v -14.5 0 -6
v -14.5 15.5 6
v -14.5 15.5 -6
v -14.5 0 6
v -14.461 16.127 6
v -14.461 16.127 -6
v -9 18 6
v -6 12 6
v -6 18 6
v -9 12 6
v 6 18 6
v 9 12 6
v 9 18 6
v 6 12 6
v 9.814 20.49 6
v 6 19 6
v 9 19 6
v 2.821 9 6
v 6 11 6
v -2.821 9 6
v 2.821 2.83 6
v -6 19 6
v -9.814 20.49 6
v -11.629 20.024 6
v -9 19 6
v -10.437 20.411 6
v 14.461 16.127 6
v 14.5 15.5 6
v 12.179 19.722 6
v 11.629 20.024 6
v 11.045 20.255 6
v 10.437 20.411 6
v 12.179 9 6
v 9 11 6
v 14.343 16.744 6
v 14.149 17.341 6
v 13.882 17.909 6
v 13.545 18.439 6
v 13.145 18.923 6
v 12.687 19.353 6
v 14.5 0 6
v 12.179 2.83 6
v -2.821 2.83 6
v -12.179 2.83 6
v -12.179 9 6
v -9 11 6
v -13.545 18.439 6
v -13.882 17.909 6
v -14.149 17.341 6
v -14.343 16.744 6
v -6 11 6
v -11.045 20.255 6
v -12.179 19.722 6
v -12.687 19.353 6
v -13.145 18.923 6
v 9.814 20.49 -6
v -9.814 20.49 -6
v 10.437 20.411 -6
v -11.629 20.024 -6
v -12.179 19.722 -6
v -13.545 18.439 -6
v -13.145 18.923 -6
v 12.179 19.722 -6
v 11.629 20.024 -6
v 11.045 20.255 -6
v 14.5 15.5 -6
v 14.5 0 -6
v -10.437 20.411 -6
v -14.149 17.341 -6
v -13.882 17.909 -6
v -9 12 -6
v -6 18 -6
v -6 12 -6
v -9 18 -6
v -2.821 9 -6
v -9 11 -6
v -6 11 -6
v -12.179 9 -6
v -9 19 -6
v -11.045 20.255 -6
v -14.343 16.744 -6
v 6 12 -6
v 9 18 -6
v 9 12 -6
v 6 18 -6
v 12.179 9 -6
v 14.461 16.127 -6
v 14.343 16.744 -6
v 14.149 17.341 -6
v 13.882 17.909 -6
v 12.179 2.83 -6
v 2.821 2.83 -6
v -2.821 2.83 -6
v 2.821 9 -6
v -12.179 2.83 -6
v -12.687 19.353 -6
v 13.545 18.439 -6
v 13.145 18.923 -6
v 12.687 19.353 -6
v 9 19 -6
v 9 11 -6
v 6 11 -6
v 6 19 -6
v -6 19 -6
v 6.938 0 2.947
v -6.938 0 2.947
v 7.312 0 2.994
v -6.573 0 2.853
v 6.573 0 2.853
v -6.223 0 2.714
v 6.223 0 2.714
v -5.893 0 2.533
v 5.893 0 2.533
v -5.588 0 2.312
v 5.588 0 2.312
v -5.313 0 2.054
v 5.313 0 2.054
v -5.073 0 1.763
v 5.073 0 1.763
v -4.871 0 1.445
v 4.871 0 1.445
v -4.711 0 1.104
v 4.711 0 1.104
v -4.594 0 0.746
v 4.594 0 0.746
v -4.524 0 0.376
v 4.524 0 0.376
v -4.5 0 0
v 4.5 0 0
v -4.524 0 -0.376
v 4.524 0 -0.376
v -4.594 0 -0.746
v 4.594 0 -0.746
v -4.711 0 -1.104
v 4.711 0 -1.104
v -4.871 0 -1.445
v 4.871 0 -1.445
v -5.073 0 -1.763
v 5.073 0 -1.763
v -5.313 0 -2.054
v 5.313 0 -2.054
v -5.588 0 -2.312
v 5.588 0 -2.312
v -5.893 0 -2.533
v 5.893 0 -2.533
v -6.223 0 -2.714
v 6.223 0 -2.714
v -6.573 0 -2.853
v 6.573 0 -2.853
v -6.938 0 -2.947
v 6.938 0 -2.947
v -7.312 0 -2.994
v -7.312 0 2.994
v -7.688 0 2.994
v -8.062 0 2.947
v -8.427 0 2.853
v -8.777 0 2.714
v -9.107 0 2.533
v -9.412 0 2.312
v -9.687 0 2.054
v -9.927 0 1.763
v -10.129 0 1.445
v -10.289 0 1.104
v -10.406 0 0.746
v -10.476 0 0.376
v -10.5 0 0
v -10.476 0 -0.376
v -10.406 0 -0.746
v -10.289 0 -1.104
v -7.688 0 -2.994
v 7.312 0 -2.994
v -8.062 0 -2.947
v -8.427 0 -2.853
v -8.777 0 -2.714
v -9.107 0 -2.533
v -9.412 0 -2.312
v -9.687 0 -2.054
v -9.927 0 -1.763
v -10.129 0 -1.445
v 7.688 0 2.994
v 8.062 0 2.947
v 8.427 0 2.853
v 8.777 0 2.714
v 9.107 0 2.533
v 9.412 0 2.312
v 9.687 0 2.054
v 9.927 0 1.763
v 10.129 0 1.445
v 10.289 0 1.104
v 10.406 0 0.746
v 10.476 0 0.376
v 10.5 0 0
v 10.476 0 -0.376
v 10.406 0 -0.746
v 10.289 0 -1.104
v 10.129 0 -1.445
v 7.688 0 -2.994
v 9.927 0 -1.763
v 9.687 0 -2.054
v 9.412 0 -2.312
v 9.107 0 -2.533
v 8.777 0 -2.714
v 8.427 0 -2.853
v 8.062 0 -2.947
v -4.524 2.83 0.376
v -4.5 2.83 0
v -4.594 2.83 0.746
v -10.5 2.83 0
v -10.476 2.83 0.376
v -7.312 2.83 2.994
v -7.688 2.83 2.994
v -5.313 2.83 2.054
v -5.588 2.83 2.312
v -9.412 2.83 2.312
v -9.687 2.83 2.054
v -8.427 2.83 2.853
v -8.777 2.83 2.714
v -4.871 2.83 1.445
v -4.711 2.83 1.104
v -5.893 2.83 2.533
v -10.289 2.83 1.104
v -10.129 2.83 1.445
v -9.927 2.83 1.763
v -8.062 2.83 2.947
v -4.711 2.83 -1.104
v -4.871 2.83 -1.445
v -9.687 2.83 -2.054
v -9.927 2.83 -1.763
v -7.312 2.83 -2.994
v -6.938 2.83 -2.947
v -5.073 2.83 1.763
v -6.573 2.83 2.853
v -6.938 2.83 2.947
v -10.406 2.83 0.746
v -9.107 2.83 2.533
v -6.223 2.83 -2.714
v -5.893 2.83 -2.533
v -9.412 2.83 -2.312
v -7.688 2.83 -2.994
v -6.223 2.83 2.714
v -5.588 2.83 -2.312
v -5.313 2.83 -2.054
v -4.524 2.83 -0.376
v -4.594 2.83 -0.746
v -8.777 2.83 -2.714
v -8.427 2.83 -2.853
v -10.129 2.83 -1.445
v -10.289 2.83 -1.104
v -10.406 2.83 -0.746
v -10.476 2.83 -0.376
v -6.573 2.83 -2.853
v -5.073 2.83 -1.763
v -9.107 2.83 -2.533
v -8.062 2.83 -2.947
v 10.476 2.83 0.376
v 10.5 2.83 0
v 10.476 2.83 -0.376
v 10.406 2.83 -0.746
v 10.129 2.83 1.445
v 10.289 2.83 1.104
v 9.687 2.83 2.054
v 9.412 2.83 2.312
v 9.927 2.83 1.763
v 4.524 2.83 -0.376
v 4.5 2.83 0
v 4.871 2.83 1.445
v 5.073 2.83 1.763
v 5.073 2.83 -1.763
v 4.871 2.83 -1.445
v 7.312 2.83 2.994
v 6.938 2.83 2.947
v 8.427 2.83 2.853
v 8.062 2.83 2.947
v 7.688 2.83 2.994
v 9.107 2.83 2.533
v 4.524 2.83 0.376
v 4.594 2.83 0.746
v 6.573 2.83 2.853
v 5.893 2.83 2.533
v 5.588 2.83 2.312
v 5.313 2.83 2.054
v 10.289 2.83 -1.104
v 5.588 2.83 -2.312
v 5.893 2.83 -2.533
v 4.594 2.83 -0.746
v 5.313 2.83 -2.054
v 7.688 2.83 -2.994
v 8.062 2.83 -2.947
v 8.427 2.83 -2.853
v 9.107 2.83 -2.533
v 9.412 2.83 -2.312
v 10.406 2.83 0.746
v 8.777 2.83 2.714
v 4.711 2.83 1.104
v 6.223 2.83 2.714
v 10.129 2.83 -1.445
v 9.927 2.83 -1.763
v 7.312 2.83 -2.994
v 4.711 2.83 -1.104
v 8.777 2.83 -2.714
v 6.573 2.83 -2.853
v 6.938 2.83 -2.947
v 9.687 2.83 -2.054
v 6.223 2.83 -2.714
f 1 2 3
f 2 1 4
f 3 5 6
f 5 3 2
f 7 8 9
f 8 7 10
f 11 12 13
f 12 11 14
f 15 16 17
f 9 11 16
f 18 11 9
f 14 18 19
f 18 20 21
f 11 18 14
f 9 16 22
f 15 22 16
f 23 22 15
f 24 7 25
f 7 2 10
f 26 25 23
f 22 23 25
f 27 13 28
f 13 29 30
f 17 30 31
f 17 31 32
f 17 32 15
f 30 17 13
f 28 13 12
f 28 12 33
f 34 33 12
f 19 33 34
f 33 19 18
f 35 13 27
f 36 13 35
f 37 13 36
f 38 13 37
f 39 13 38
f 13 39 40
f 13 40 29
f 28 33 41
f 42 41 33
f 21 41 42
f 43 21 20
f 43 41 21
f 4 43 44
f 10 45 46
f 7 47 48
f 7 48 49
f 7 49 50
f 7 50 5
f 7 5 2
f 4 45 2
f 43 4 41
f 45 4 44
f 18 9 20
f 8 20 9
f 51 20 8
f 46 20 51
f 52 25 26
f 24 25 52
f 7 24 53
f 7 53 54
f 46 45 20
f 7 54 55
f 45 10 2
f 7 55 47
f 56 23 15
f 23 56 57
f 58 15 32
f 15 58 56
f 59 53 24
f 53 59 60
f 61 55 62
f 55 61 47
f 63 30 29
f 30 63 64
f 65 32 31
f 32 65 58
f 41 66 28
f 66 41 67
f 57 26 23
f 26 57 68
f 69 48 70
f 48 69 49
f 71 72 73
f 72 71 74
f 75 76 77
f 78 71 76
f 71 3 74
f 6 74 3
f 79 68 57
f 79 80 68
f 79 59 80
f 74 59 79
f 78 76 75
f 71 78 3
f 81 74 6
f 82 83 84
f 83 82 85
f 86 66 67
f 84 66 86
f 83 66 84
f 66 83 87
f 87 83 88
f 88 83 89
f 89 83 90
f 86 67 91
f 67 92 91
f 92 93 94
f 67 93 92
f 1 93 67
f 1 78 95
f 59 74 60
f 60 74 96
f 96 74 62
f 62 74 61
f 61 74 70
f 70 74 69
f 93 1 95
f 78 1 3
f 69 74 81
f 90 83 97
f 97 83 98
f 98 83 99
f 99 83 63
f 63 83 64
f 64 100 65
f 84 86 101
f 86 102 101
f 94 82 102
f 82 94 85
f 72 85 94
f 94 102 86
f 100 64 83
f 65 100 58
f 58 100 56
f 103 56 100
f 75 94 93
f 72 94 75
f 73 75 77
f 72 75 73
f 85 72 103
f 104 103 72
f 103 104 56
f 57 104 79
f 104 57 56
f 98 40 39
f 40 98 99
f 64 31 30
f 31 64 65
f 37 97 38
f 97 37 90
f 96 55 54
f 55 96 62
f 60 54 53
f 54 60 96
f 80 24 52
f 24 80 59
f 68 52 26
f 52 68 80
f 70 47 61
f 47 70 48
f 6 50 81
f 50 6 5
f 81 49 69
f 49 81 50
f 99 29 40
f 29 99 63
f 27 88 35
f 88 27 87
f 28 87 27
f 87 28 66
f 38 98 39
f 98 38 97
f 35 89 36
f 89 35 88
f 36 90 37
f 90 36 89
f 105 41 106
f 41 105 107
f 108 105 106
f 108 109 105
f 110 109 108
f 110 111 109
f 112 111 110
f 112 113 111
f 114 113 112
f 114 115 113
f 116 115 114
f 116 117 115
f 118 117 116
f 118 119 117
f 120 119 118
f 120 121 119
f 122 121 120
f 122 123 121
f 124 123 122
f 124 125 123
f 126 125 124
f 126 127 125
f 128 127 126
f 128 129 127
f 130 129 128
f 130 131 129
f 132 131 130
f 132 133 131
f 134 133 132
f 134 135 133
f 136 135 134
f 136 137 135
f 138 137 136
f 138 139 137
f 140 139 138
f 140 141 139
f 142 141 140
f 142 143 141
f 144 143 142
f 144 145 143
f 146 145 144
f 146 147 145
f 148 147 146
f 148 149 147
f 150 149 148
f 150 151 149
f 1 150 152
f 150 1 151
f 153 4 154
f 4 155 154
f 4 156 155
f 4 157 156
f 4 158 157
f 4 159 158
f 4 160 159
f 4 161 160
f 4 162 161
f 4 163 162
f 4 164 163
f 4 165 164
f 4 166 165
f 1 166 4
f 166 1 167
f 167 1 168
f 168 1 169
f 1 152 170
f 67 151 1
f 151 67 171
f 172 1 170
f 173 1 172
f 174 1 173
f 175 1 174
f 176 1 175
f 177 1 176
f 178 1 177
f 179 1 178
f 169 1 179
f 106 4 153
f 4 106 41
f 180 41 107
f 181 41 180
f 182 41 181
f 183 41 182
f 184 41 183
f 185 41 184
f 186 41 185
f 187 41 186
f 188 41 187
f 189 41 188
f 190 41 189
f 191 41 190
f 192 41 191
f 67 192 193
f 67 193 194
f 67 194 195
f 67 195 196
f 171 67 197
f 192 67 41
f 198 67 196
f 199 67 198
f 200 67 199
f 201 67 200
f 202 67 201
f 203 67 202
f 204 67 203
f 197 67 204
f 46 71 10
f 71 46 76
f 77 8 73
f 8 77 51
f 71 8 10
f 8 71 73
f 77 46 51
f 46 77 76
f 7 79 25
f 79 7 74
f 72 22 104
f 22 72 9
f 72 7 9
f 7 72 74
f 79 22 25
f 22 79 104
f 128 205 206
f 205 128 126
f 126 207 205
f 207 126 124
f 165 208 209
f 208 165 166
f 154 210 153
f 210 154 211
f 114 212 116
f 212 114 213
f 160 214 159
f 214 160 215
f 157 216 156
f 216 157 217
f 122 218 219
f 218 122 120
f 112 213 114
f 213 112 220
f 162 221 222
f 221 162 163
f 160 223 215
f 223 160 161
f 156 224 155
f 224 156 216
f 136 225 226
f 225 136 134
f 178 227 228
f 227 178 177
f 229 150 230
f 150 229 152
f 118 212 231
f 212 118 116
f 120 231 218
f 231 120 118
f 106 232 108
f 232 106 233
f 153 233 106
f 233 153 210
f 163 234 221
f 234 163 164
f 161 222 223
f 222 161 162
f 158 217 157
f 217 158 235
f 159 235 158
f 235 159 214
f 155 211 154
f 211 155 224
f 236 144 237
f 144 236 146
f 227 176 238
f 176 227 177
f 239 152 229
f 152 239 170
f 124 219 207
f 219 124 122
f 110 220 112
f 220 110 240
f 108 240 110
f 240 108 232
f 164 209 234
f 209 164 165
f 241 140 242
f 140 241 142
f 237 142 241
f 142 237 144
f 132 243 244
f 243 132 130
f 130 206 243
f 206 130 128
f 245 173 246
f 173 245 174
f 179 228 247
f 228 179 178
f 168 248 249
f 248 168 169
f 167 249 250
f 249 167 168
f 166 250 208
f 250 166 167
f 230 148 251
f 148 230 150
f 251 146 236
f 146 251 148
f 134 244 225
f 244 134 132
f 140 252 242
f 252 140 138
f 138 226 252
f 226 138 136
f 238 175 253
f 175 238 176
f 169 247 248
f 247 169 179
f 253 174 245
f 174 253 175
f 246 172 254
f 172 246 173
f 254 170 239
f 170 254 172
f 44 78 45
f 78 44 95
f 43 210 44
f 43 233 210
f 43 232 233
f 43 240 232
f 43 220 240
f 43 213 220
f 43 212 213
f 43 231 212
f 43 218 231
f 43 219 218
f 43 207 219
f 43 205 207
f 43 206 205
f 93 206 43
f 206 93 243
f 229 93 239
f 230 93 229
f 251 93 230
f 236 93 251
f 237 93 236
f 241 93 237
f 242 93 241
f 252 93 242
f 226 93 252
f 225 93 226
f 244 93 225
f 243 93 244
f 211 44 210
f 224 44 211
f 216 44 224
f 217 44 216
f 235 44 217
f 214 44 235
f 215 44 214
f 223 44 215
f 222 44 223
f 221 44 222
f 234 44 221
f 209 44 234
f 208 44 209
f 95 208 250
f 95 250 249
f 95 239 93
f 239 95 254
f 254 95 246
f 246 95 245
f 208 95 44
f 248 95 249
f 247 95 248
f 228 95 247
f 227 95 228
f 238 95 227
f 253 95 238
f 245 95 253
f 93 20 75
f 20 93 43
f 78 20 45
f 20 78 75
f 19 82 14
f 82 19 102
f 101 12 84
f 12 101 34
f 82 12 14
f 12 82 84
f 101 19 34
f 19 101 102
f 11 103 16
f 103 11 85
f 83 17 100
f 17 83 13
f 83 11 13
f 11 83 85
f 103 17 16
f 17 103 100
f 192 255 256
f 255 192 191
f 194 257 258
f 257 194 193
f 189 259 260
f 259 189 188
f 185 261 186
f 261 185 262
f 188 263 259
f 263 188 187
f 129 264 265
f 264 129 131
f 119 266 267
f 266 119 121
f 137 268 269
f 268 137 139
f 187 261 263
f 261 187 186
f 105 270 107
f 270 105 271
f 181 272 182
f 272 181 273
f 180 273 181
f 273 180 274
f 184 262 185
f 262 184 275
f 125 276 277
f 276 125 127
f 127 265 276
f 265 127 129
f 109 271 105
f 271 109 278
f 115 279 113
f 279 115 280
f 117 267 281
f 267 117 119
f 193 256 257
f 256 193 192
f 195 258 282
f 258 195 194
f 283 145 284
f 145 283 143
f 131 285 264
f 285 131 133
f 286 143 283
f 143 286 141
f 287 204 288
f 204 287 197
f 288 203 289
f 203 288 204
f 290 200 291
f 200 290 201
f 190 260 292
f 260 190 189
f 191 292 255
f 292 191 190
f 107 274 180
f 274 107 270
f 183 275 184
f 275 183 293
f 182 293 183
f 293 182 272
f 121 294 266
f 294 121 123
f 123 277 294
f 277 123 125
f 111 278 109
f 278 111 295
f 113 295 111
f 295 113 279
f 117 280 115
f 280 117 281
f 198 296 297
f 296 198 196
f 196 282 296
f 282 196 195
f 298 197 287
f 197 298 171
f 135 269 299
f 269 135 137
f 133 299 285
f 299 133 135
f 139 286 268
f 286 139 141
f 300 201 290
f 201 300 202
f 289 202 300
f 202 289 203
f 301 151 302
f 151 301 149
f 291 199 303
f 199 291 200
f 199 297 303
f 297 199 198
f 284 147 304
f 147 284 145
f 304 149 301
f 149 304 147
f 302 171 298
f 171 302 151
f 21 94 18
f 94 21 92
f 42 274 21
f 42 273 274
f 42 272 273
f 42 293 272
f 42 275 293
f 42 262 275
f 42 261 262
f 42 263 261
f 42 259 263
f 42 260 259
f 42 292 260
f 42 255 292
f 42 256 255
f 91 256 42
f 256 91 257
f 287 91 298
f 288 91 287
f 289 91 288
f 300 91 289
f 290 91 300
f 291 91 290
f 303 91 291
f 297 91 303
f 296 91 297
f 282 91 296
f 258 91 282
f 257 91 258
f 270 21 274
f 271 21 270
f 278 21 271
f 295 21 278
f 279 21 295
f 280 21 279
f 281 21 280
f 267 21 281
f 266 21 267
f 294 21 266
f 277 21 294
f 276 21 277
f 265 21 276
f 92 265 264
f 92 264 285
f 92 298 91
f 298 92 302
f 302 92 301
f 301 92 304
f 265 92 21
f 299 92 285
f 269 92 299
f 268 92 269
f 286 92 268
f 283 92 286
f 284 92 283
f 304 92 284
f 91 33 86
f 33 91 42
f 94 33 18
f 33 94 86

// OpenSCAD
$fn = 50;


difference() {
	union() {
		translate(v = [0, 13.5000000000, -6.0000000000]) {
			rotate(a = [0, 0, 0]) {
				hull() {
					translate(v = [-9.5000000000, 2.0000000000, 0]) {
						rotate(a = [0, 0, 0]) {
							translate(v = [0, 0, 0]) {
								rotate(a = [0, 0, 0]) {
									cylinder(h = 12, r = 5);
								}
							}
						}
					}
					translate(v = [9.5000000000, 2.0000000000, 0]) {
						rotate(a = [0, 0, 0]) {
							translate(v = [0, 0, 0]) {
								rotate(a = [0, 0, 0]) {
									cylinder(h = 12, r = 5);
								}
							}
						}
					}
					translate(v = [-9.5000000000, -2.0000000000, 0]) {
						rotate(a = [0, 0, 0]) {
							translate(v = [0, 0, 0]) {
								rotate(a = [0, 0, 0]) {
									cylinder(h = 12, r = 5);
								}
							}
						}
					}
					translate(v = [9.5000000000, -2.0000000000, 0]) {
						rotate(a = [0, 0, 0]) {
							translate(v = [0, 0, 0]) {
								rotate(a = [0, 0, 0]) {
									cylinder(h = 12, r = 5);
								}
							}
						}
					}
				}
			}
		}
		translate(v = [-14.5000000000, 0, -6.0000000000]) {
			rotate(a = [0, 0, 0]) {
				cube(size = [29, 13.5000000000, 12]);
			}
		}
	}
	union() {
		translate(v = [-9.0000000000, 11.0000000000, -50]) {
			rotate(a = [0, 0, 0]) {
				cube(size = [3, 1, 100]);
			}
		}
		translate(v = [-9.0000000000, 18.0000000000, -50]) {
			rotate(a = [0, 0, 0]) {
				cube(size = [3, 1, 100]);
			}
		}
		translate(v = [-7.5000000000, 8, 0]) {
			rotate(a = [90, 0, 0]) {
				cylinder(h = 8, r = 3.0000000000);
			}
		}
		translate(v = [-12.1793760832, 9, -25]) {
			rotate(a = [90, 0, 0]) {
				cube(size = [9.3587521664, 100, 6.1700000000]);
			}
		}
		translate(v = [6.0000000000, 11.0000000000, -50]) {
			rotate(a = [0, 0, 0]) {
				cube(size = [3, 1, 100]);
			}
		}
		translate(v = [6.0000000000, 18.0000000000, -50]) {
			rotate(a = [0, 0, 0]) {
				cube(size = [3, 1, 100]);
			}
		}
		translate(v = [7.5000000000, 8, 0]) {
			rotate(a = [90, 0, 0]) {
				cylinder(h = 8, r = 3.0000000000);
			}
		}
		translate(v = [2.8206239168, 9, -25]) {
			rotate(a = [90, 0, 0]) {
				cube(size = [9.3587521664, 100, 6.1700000000]);
			}
		}
	}
}
